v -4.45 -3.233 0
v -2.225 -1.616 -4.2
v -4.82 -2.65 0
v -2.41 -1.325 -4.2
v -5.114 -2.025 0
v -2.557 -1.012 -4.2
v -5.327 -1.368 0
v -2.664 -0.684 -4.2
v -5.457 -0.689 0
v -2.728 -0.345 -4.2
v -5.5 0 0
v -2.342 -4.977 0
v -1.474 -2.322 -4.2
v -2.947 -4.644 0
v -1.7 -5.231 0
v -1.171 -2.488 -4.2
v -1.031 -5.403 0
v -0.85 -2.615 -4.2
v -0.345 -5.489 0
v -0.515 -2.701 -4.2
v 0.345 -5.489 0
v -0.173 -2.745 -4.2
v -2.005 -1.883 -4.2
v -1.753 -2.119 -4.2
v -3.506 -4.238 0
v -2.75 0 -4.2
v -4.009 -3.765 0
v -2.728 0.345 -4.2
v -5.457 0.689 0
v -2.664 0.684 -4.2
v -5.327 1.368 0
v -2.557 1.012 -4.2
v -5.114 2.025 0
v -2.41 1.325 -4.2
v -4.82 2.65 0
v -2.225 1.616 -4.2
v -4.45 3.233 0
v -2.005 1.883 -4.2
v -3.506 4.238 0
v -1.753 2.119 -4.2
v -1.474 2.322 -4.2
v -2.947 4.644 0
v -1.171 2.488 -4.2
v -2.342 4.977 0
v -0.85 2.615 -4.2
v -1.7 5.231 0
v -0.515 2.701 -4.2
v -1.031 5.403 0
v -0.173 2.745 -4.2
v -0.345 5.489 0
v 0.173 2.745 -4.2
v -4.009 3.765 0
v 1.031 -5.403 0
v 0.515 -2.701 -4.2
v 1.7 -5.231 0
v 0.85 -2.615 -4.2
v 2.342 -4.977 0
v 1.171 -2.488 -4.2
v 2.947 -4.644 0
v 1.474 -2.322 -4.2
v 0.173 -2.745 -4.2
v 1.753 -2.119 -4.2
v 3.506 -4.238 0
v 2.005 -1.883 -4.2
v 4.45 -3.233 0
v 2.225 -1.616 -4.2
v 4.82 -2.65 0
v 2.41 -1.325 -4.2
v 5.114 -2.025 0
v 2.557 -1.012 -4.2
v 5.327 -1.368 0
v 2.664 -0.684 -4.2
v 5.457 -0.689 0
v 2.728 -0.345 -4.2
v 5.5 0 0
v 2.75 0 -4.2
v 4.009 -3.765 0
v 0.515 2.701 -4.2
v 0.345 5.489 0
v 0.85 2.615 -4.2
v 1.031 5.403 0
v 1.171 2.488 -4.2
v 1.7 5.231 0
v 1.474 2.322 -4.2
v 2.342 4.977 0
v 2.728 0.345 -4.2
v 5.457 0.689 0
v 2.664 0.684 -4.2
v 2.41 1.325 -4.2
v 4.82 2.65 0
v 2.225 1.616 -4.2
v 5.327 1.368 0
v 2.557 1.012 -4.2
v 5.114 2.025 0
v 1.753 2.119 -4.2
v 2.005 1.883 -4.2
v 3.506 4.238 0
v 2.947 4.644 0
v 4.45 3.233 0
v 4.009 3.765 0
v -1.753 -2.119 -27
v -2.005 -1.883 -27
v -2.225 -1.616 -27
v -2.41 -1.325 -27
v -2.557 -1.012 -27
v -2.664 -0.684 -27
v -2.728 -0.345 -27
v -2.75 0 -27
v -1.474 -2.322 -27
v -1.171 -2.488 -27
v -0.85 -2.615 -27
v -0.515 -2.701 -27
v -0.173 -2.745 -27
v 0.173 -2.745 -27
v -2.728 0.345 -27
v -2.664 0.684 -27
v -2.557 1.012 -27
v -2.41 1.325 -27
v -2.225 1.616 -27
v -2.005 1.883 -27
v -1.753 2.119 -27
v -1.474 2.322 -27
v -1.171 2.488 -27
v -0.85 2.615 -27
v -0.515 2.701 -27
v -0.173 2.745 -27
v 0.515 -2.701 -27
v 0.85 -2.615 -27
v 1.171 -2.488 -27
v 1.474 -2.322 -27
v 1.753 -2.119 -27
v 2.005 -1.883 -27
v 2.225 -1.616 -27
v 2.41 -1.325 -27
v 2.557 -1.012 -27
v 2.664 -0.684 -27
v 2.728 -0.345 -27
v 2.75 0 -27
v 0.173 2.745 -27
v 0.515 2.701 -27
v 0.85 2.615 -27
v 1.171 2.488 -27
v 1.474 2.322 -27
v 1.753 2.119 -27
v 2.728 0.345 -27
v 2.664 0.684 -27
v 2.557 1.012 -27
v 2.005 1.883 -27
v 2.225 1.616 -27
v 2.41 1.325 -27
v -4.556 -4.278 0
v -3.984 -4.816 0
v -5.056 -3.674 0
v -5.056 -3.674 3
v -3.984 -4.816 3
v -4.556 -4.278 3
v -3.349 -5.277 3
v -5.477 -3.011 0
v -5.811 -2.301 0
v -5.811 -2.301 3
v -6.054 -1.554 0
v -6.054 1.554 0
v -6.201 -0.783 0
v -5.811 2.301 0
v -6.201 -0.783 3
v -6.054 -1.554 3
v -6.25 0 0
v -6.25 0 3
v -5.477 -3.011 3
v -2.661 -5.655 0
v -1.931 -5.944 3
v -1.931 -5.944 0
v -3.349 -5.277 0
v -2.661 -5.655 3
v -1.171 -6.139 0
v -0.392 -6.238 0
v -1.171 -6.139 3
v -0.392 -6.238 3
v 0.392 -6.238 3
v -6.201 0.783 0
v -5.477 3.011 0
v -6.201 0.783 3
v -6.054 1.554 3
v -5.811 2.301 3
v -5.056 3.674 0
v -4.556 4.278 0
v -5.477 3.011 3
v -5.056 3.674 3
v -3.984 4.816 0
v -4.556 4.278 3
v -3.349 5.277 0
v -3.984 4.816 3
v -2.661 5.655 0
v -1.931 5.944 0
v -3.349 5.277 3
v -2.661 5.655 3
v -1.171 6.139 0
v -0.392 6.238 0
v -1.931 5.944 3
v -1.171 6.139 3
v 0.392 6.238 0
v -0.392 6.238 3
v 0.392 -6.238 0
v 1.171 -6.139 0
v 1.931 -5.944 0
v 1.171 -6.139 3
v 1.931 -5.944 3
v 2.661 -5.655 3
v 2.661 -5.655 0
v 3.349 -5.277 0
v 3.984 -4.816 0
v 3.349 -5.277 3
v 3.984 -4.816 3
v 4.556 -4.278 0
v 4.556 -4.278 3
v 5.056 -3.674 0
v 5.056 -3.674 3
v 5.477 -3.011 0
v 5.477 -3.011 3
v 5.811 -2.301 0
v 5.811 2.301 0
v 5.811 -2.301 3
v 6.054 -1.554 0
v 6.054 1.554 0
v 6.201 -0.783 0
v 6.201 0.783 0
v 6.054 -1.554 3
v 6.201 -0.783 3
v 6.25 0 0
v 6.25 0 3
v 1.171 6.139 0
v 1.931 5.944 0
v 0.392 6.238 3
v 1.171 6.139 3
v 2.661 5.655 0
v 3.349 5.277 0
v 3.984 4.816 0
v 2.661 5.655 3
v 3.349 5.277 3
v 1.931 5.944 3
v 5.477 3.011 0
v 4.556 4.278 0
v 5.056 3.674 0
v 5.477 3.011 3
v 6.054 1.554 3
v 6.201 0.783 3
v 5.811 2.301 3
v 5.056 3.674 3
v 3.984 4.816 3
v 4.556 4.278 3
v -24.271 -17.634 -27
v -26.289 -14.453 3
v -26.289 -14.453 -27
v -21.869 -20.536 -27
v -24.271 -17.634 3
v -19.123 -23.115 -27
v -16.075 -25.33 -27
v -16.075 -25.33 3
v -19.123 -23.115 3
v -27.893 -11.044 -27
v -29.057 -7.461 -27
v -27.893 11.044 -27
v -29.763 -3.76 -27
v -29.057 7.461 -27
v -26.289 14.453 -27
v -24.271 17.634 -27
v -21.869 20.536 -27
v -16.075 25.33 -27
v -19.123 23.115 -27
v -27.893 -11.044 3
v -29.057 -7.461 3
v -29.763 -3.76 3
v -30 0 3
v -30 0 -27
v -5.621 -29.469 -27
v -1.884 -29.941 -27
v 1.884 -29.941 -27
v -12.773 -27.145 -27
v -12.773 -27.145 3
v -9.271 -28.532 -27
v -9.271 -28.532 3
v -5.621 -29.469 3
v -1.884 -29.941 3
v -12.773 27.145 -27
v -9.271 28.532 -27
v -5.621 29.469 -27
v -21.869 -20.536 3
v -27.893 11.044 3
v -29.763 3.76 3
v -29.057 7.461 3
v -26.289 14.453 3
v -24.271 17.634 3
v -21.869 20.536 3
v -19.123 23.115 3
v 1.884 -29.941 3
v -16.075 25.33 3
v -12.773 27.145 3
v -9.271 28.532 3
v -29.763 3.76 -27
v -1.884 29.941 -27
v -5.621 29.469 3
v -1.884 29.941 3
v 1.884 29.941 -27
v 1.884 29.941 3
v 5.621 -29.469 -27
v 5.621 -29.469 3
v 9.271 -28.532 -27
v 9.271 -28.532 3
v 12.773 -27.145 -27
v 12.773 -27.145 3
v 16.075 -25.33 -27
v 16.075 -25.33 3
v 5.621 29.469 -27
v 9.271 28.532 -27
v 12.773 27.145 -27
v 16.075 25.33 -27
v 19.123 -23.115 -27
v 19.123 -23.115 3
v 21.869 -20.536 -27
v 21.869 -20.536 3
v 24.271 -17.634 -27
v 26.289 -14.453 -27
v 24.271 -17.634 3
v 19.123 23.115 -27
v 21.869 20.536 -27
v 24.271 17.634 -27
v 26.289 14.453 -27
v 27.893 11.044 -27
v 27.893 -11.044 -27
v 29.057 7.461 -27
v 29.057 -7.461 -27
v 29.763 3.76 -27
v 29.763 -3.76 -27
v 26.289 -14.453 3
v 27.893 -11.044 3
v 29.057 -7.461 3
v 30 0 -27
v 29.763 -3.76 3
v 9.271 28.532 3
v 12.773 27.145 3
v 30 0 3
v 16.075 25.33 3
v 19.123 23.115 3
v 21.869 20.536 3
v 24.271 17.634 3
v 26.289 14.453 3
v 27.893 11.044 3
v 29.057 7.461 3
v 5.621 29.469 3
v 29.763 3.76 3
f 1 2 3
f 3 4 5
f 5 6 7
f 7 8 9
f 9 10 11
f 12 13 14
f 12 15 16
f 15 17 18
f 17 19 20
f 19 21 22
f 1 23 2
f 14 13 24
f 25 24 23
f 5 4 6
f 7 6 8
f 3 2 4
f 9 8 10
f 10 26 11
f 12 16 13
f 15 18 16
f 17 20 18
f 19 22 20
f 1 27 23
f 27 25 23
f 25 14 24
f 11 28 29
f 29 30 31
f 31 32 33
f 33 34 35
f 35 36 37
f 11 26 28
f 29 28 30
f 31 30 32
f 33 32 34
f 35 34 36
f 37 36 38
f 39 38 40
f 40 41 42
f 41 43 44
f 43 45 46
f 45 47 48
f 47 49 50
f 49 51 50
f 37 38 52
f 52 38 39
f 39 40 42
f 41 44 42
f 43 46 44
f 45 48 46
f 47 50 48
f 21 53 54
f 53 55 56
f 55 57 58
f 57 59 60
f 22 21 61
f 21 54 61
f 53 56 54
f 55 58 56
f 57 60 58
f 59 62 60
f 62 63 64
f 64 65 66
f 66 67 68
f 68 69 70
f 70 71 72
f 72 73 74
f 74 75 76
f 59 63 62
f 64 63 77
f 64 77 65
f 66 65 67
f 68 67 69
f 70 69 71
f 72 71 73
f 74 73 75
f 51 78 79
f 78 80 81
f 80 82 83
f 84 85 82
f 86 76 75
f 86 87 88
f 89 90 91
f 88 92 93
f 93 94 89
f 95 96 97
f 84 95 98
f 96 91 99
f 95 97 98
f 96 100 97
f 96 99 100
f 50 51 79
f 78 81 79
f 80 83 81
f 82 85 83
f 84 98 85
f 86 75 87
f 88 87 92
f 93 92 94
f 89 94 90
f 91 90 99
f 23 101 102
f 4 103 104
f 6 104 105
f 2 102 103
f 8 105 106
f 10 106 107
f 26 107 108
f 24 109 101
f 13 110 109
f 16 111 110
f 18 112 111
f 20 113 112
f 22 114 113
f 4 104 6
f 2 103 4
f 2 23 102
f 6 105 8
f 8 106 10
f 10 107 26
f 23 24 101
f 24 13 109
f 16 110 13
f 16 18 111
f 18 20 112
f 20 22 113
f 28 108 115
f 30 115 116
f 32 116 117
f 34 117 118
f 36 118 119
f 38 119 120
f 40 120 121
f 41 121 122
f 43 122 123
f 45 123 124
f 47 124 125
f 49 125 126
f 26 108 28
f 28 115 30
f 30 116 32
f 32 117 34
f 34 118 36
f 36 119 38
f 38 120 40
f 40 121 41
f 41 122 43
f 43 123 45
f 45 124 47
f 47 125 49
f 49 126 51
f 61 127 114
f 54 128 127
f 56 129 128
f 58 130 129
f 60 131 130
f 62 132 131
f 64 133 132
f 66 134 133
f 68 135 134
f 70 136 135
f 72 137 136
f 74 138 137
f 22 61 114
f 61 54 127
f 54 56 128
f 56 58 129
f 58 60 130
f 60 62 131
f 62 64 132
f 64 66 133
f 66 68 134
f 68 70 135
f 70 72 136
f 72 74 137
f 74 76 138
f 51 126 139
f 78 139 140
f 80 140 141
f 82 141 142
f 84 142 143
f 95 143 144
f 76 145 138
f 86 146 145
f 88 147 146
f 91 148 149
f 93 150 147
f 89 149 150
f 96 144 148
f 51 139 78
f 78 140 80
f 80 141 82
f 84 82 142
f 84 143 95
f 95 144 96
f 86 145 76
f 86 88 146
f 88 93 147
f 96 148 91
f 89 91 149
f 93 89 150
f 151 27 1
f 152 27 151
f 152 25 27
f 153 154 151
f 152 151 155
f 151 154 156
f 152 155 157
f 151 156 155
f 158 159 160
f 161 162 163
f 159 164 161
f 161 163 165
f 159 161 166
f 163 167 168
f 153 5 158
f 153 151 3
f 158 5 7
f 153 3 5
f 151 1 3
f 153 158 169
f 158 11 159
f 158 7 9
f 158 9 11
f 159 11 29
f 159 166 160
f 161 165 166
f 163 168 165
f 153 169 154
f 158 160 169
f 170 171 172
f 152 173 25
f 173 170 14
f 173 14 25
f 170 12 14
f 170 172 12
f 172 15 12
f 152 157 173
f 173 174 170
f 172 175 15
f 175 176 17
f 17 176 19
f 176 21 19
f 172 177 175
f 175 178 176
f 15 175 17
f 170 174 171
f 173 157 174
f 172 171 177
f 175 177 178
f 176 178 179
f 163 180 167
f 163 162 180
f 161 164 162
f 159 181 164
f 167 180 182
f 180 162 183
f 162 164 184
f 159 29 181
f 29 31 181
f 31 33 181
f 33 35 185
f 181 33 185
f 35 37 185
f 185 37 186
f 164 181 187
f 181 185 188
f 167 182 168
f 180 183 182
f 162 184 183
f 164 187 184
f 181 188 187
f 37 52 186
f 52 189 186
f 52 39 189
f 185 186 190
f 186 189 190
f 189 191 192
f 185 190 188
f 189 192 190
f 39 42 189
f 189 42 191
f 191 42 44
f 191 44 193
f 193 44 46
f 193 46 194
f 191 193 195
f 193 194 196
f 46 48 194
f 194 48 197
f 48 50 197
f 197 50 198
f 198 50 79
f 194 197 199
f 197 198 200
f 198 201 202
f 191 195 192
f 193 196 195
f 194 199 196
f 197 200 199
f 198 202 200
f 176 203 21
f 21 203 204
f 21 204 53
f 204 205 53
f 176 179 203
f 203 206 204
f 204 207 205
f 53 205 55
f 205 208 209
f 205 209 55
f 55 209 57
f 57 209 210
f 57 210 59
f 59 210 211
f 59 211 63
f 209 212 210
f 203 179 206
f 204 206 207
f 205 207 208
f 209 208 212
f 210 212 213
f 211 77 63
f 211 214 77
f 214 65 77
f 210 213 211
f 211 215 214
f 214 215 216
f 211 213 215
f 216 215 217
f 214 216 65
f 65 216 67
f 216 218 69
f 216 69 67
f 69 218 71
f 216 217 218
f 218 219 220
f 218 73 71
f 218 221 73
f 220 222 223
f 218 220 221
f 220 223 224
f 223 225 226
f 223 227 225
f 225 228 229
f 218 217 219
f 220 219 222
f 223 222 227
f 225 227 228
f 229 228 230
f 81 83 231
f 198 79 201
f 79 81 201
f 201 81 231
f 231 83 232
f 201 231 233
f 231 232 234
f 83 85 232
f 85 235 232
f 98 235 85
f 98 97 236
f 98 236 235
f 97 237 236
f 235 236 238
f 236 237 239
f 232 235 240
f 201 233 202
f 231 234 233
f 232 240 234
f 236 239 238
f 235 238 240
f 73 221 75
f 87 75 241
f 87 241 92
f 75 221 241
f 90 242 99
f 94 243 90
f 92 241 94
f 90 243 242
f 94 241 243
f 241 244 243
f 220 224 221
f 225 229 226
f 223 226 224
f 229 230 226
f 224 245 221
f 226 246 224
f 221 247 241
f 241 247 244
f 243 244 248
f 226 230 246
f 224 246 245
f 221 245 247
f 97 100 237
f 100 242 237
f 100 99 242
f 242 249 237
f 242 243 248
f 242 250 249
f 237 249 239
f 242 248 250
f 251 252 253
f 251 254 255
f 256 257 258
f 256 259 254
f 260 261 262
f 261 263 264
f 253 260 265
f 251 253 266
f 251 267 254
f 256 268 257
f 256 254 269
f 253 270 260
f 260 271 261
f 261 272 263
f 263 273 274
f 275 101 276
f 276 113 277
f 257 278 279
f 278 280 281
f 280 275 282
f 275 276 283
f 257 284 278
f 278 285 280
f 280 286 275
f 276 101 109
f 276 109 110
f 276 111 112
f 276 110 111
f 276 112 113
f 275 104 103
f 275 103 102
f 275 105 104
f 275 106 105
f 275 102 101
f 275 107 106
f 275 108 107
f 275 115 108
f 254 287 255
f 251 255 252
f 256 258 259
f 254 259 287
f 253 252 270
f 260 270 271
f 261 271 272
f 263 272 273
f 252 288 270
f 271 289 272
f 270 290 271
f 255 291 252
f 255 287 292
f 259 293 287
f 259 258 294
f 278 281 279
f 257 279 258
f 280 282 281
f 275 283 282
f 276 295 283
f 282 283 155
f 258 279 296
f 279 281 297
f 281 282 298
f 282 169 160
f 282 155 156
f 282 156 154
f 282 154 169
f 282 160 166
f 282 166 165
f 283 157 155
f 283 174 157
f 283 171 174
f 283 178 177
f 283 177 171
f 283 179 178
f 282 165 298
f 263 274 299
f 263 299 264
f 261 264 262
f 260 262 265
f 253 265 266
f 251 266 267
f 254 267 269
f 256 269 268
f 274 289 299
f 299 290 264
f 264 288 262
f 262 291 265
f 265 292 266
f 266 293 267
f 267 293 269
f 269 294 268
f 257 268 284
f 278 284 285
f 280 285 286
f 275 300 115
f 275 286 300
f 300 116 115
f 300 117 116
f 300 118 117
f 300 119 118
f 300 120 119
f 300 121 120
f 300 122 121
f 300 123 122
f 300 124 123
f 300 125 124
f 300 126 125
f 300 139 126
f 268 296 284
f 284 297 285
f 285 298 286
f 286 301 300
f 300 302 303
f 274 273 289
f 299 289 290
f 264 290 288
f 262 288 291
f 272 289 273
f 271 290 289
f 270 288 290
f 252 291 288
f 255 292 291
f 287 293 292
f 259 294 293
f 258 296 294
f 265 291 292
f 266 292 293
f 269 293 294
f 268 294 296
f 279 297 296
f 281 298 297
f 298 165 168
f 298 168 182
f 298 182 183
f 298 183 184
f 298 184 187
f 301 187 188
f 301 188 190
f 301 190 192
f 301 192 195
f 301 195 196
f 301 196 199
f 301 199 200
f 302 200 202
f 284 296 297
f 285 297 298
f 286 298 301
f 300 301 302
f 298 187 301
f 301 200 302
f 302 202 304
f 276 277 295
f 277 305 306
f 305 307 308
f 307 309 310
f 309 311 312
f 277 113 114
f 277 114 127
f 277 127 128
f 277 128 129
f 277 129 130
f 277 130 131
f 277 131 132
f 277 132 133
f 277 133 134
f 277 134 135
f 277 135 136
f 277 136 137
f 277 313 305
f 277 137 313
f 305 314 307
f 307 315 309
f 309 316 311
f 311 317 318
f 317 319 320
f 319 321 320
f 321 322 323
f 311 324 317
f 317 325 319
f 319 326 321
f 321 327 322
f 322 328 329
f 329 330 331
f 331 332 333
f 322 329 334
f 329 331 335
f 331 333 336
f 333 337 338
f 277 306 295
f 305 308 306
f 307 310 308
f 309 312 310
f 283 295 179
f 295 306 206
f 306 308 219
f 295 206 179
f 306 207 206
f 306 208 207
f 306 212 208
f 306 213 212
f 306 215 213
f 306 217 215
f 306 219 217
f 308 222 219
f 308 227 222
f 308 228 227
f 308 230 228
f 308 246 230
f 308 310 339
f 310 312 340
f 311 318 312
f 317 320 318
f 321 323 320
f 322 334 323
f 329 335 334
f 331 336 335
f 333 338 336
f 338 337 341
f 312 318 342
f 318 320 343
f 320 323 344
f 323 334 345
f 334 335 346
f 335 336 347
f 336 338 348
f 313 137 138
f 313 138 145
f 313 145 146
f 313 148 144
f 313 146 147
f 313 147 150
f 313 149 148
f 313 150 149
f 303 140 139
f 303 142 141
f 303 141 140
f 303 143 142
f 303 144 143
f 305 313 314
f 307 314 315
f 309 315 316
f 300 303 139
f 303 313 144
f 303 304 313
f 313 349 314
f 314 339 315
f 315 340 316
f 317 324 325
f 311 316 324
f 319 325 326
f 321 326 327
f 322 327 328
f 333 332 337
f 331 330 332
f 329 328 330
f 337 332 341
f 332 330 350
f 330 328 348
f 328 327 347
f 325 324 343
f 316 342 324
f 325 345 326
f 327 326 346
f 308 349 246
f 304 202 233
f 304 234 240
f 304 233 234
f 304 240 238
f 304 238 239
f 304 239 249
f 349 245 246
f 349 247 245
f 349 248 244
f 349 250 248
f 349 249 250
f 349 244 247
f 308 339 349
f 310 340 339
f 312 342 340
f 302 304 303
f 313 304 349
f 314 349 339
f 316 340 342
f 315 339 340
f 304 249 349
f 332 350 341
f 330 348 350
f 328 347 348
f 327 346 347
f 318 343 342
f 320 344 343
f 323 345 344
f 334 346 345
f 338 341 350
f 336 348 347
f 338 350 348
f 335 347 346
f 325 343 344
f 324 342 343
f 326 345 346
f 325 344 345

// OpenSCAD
$fn = 50;

difference() {
	union() {
		translate(v = [0, 0, -27.0]) {
			cylinder(h = 30, r = 30.0);
		}
	}
	union() {
		translate(v = [0, 0, 0]) {
			rotate(a = [0, 0, 0]) {
				difference() {
					union() {
						translate(v = [0, 0, -30.0]) {
							cylinder(h = 30, r = 2.25);
						}
						translate(v = [0, 0, -4.2]) {
							cylinder(h = 4.2, r1 = 2.75, r2 = 5.5);
						}
						translate(v = [0, 0, -30.0]) {
							cylinder(h = 30, r = 2.75);
						}
						translate(v = [0, 0, -30.0]) {
							cylinder(h = 30, r = 2.25);
						}
					}
					union();
				}
			}
		}
		#cylinder(h = 3, r = 6.25);
	}
}
